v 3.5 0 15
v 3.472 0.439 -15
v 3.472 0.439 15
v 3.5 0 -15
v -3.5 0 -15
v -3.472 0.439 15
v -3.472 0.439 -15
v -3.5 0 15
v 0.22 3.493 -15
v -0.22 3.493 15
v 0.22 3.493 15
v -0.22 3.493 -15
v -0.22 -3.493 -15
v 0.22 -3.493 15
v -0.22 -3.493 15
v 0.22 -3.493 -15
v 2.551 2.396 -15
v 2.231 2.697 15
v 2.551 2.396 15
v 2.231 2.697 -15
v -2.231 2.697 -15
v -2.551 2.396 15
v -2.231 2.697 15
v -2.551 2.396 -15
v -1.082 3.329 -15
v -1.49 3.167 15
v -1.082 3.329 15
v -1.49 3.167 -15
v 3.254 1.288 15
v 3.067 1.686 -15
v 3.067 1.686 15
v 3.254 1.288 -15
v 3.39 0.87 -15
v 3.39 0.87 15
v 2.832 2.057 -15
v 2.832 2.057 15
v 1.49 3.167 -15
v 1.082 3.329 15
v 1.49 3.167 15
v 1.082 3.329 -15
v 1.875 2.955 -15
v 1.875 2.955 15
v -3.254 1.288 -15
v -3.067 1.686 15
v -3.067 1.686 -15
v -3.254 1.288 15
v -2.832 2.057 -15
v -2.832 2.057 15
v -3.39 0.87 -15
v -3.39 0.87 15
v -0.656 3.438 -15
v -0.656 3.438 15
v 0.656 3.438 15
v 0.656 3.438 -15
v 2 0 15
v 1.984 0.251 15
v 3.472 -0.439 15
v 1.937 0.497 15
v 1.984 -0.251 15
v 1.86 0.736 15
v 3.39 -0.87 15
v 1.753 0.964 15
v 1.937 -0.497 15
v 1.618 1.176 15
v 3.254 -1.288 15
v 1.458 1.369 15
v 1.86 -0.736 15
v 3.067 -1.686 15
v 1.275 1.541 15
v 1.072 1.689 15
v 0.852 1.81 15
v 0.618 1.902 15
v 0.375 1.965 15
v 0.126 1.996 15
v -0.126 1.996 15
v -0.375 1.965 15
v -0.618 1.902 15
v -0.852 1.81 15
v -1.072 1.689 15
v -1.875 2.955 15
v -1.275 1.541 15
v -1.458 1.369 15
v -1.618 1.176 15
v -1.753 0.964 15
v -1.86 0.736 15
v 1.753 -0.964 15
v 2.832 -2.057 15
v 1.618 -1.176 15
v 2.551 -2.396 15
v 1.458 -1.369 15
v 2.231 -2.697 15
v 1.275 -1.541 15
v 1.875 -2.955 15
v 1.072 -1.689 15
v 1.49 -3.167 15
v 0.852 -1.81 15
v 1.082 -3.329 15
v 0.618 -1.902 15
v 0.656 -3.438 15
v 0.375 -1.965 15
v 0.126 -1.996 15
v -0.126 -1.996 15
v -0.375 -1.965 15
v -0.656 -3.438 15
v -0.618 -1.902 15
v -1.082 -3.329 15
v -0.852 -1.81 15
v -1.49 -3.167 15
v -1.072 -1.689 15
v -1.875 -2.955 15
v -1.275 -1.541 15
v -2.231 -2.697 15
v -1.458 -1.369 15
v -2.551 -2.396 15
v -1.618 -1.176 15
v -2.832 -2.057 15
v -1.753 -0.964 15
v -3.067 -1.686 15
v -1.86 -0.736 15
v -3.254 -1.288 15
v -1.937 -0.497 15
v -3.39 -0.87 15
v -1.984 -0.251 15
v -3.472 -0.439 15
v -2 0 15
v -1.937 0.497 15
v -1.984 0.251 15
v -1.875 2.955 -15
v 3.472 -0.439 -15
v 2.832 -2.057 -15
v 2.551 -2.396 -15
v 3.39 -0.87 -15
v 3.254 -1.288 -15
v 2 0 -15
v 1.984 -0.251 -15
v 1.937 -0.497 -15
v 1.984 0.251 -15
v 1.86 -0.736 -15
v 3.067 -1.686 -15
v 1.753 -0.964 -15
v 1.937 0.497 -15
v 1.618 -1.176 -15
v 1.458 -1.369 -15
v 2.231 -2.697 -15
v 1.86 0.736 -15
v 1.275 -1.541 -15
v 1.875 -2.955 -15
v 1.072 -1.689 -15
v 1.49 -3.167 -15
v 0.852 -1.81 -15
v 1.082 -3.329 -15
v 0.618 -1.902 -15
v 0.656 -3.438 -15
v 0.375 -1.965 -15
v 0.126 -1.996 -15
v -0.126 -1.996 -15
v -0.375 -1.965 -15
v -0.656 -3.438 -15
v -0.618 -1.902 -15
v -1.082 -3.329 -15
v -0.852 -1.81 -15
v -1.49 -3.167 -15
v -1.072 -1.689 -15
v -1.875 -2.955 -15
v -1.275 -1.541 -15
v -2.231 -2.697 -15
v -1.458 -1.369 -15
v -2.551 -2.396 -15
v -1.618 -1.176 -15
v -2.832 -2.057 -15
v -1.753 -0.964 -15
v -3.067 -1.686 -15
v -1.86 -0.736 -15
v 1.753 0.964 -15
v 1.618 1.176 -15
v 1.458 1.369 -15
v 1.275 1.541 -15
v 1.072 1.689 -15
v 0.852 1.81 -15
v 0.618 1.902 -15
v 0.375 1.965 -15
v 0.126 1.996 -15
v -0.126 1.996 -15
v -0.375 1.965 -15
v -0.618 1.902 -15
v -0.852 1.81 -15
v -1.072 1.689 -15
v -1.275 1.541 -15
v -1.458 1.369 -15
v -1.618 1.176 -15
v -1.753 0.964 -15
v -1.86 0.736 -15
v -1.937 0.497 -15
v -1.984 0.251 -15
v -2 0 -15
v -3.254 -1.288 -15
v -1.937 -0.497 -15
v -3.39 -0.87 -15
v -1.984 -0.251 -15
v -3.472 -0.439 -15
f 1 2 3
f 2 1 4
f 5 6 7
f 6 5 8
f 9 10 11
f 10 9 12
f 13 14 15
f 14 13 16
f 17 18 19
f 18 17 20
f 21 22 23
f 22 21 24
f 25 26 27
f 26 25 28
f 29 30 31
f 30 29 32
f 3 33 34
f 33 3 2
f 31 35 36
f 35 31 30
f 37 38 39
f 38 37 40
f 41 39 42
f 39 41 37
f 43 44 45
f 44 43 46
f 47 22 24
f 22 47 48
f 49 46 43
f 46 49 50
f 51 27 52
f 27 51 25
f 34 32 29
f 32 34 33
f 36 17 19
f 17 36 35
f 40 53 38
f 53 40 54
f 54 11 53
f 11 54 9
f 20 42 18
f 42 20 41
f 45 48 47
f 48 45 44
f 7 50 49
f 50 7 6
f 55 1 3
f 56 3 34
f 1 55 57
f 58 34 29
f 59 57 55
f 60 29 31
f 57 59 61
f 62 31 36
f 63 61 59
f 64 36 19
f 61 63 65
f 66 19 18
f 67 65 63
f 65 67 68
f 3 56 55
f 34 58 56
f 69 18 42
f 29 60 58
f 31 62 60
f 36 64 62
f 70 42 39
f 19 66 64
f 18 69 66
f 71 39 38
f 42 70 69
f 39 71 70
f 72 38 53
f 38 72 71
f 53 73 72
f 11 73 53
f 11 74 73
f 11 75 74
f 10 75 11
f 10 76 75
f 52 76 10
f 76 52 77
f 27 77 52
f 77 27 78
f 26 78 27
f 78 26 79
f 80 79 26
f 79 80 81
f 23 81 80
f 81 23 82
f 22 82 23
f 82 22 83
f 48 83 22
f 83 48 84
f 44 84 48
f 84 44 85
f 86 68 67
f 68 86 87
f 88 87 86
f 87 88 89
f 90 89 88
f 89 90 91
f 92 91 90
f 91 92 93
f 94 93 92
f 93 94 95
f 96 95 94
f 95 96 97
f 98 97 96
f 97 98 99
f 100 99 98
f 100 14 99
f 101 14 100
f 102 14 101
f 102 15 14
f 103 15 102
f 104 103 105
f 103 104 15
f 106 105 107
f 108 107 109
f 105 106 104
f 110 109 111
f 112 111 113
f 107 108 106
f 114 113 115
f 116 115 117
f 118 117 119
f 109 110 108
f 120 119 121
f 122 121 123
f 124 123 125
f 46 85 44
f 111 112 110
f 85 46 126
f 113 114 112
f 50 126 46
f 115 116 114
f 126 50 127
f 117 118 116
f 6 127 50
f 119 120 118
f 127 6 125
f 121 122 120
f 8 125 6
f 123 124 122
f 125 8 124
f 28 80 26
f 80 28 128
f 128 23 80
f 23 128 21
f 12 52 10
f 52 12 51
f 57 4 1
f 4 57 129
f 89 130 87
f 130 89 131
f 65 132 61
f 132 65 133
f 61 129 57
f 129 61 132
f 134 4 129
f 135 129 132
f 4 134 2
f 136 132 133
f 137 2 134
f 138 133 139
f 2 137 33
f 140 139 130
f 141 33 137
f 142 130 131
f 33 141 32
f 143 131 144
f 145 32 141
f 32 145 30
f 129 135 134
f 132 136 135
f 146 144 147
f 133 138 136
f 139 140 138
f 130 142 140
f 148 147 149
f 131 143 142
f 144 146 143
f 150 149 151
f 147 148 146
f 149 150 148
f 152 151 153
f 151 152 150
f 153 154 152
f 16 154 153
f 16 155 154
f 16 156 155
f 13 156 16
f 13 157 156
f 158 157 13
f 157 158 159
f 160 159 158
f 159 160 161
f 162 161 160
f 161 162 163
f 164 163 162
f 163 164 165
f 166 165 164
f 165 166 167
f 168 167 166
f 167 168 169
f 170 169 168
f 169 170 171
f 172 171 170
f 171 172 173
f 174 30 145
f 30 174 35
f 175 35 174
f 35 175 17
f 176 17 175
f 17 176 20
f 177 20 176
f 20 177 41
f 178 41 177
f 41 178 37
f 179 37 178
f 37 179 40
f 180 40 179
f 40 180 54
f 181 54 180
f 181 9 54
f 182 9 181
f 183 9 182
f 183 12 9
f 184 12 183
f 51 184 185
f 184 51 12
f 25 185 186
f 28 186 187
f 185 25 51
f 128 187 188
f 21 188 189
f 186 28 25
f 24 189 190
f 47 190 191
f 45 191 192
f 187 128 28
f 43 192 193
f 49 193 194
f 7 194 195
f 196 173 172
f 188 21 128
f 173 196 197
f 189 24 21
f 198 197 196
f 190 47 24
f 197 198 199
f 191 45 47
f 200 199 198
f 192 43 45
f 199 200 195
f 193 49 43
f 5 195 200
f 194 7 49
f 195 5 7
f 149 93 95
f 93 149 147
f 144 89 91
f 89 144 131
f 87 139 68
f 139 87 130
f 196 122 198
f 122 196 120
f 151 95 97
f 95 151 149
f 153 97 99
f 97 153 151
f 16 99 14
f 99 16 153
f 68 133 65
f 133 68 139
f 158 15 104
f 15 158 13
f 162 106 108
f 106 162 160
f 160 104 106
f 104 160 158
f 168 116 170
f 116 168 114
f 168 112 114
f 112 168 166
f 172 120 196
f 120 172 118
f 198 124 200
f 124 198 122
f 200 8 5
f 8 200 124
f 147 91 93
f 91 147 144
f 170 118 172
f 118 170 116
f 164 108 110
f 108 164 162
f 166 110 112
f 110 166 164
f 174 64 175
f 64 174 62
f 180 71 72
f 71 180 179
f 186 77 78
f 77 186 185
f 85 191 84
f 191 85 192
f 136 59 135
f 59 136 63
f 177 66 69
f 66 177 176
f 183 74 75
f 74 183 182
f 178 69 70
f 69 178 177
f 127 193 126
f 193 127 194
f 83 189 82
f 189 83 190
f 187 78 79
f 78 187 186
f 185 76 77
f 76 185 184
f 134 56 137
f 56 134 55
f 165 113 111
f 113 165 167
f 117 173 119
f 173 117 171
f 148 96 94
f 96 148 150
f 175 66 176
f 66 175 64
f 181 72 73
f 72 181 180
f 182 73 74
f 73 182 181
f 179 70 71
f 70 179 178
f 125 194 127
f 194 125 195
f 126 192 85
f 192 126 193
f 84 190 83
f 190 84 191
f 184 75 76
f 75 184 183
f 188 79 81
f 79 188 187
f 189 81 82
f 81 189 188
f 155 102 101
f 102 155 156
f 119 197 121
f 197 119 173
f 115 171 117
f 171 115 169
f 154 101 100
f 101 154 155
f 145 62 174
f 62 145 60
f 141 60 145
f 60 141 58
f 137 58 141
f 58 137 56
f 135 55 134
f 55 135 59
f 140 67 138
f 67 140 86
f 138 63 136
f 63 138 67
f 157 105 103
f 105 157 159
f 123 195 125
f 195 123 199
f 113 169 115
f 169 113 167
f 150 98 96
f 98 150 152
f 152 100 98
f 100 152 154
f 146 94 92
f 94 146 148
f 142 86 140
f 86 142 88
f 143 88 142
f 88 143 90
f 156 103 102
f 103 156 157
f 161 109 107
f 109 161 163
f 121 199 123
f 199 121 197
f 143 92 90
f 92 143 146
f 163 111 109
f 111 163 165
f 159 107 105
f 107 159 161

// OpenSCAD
$fn = 50;


difference() {
	union() {
		translate(v = [0, 0, -15.0000000000]) {
			cylinder(h = 30, r = 3.5000000000);
		}
	}
	union() {
		translate(v = [0, 0, -100.0000000000]) {
			cylinder(h = 200, r = 2);
		}
	}
}
